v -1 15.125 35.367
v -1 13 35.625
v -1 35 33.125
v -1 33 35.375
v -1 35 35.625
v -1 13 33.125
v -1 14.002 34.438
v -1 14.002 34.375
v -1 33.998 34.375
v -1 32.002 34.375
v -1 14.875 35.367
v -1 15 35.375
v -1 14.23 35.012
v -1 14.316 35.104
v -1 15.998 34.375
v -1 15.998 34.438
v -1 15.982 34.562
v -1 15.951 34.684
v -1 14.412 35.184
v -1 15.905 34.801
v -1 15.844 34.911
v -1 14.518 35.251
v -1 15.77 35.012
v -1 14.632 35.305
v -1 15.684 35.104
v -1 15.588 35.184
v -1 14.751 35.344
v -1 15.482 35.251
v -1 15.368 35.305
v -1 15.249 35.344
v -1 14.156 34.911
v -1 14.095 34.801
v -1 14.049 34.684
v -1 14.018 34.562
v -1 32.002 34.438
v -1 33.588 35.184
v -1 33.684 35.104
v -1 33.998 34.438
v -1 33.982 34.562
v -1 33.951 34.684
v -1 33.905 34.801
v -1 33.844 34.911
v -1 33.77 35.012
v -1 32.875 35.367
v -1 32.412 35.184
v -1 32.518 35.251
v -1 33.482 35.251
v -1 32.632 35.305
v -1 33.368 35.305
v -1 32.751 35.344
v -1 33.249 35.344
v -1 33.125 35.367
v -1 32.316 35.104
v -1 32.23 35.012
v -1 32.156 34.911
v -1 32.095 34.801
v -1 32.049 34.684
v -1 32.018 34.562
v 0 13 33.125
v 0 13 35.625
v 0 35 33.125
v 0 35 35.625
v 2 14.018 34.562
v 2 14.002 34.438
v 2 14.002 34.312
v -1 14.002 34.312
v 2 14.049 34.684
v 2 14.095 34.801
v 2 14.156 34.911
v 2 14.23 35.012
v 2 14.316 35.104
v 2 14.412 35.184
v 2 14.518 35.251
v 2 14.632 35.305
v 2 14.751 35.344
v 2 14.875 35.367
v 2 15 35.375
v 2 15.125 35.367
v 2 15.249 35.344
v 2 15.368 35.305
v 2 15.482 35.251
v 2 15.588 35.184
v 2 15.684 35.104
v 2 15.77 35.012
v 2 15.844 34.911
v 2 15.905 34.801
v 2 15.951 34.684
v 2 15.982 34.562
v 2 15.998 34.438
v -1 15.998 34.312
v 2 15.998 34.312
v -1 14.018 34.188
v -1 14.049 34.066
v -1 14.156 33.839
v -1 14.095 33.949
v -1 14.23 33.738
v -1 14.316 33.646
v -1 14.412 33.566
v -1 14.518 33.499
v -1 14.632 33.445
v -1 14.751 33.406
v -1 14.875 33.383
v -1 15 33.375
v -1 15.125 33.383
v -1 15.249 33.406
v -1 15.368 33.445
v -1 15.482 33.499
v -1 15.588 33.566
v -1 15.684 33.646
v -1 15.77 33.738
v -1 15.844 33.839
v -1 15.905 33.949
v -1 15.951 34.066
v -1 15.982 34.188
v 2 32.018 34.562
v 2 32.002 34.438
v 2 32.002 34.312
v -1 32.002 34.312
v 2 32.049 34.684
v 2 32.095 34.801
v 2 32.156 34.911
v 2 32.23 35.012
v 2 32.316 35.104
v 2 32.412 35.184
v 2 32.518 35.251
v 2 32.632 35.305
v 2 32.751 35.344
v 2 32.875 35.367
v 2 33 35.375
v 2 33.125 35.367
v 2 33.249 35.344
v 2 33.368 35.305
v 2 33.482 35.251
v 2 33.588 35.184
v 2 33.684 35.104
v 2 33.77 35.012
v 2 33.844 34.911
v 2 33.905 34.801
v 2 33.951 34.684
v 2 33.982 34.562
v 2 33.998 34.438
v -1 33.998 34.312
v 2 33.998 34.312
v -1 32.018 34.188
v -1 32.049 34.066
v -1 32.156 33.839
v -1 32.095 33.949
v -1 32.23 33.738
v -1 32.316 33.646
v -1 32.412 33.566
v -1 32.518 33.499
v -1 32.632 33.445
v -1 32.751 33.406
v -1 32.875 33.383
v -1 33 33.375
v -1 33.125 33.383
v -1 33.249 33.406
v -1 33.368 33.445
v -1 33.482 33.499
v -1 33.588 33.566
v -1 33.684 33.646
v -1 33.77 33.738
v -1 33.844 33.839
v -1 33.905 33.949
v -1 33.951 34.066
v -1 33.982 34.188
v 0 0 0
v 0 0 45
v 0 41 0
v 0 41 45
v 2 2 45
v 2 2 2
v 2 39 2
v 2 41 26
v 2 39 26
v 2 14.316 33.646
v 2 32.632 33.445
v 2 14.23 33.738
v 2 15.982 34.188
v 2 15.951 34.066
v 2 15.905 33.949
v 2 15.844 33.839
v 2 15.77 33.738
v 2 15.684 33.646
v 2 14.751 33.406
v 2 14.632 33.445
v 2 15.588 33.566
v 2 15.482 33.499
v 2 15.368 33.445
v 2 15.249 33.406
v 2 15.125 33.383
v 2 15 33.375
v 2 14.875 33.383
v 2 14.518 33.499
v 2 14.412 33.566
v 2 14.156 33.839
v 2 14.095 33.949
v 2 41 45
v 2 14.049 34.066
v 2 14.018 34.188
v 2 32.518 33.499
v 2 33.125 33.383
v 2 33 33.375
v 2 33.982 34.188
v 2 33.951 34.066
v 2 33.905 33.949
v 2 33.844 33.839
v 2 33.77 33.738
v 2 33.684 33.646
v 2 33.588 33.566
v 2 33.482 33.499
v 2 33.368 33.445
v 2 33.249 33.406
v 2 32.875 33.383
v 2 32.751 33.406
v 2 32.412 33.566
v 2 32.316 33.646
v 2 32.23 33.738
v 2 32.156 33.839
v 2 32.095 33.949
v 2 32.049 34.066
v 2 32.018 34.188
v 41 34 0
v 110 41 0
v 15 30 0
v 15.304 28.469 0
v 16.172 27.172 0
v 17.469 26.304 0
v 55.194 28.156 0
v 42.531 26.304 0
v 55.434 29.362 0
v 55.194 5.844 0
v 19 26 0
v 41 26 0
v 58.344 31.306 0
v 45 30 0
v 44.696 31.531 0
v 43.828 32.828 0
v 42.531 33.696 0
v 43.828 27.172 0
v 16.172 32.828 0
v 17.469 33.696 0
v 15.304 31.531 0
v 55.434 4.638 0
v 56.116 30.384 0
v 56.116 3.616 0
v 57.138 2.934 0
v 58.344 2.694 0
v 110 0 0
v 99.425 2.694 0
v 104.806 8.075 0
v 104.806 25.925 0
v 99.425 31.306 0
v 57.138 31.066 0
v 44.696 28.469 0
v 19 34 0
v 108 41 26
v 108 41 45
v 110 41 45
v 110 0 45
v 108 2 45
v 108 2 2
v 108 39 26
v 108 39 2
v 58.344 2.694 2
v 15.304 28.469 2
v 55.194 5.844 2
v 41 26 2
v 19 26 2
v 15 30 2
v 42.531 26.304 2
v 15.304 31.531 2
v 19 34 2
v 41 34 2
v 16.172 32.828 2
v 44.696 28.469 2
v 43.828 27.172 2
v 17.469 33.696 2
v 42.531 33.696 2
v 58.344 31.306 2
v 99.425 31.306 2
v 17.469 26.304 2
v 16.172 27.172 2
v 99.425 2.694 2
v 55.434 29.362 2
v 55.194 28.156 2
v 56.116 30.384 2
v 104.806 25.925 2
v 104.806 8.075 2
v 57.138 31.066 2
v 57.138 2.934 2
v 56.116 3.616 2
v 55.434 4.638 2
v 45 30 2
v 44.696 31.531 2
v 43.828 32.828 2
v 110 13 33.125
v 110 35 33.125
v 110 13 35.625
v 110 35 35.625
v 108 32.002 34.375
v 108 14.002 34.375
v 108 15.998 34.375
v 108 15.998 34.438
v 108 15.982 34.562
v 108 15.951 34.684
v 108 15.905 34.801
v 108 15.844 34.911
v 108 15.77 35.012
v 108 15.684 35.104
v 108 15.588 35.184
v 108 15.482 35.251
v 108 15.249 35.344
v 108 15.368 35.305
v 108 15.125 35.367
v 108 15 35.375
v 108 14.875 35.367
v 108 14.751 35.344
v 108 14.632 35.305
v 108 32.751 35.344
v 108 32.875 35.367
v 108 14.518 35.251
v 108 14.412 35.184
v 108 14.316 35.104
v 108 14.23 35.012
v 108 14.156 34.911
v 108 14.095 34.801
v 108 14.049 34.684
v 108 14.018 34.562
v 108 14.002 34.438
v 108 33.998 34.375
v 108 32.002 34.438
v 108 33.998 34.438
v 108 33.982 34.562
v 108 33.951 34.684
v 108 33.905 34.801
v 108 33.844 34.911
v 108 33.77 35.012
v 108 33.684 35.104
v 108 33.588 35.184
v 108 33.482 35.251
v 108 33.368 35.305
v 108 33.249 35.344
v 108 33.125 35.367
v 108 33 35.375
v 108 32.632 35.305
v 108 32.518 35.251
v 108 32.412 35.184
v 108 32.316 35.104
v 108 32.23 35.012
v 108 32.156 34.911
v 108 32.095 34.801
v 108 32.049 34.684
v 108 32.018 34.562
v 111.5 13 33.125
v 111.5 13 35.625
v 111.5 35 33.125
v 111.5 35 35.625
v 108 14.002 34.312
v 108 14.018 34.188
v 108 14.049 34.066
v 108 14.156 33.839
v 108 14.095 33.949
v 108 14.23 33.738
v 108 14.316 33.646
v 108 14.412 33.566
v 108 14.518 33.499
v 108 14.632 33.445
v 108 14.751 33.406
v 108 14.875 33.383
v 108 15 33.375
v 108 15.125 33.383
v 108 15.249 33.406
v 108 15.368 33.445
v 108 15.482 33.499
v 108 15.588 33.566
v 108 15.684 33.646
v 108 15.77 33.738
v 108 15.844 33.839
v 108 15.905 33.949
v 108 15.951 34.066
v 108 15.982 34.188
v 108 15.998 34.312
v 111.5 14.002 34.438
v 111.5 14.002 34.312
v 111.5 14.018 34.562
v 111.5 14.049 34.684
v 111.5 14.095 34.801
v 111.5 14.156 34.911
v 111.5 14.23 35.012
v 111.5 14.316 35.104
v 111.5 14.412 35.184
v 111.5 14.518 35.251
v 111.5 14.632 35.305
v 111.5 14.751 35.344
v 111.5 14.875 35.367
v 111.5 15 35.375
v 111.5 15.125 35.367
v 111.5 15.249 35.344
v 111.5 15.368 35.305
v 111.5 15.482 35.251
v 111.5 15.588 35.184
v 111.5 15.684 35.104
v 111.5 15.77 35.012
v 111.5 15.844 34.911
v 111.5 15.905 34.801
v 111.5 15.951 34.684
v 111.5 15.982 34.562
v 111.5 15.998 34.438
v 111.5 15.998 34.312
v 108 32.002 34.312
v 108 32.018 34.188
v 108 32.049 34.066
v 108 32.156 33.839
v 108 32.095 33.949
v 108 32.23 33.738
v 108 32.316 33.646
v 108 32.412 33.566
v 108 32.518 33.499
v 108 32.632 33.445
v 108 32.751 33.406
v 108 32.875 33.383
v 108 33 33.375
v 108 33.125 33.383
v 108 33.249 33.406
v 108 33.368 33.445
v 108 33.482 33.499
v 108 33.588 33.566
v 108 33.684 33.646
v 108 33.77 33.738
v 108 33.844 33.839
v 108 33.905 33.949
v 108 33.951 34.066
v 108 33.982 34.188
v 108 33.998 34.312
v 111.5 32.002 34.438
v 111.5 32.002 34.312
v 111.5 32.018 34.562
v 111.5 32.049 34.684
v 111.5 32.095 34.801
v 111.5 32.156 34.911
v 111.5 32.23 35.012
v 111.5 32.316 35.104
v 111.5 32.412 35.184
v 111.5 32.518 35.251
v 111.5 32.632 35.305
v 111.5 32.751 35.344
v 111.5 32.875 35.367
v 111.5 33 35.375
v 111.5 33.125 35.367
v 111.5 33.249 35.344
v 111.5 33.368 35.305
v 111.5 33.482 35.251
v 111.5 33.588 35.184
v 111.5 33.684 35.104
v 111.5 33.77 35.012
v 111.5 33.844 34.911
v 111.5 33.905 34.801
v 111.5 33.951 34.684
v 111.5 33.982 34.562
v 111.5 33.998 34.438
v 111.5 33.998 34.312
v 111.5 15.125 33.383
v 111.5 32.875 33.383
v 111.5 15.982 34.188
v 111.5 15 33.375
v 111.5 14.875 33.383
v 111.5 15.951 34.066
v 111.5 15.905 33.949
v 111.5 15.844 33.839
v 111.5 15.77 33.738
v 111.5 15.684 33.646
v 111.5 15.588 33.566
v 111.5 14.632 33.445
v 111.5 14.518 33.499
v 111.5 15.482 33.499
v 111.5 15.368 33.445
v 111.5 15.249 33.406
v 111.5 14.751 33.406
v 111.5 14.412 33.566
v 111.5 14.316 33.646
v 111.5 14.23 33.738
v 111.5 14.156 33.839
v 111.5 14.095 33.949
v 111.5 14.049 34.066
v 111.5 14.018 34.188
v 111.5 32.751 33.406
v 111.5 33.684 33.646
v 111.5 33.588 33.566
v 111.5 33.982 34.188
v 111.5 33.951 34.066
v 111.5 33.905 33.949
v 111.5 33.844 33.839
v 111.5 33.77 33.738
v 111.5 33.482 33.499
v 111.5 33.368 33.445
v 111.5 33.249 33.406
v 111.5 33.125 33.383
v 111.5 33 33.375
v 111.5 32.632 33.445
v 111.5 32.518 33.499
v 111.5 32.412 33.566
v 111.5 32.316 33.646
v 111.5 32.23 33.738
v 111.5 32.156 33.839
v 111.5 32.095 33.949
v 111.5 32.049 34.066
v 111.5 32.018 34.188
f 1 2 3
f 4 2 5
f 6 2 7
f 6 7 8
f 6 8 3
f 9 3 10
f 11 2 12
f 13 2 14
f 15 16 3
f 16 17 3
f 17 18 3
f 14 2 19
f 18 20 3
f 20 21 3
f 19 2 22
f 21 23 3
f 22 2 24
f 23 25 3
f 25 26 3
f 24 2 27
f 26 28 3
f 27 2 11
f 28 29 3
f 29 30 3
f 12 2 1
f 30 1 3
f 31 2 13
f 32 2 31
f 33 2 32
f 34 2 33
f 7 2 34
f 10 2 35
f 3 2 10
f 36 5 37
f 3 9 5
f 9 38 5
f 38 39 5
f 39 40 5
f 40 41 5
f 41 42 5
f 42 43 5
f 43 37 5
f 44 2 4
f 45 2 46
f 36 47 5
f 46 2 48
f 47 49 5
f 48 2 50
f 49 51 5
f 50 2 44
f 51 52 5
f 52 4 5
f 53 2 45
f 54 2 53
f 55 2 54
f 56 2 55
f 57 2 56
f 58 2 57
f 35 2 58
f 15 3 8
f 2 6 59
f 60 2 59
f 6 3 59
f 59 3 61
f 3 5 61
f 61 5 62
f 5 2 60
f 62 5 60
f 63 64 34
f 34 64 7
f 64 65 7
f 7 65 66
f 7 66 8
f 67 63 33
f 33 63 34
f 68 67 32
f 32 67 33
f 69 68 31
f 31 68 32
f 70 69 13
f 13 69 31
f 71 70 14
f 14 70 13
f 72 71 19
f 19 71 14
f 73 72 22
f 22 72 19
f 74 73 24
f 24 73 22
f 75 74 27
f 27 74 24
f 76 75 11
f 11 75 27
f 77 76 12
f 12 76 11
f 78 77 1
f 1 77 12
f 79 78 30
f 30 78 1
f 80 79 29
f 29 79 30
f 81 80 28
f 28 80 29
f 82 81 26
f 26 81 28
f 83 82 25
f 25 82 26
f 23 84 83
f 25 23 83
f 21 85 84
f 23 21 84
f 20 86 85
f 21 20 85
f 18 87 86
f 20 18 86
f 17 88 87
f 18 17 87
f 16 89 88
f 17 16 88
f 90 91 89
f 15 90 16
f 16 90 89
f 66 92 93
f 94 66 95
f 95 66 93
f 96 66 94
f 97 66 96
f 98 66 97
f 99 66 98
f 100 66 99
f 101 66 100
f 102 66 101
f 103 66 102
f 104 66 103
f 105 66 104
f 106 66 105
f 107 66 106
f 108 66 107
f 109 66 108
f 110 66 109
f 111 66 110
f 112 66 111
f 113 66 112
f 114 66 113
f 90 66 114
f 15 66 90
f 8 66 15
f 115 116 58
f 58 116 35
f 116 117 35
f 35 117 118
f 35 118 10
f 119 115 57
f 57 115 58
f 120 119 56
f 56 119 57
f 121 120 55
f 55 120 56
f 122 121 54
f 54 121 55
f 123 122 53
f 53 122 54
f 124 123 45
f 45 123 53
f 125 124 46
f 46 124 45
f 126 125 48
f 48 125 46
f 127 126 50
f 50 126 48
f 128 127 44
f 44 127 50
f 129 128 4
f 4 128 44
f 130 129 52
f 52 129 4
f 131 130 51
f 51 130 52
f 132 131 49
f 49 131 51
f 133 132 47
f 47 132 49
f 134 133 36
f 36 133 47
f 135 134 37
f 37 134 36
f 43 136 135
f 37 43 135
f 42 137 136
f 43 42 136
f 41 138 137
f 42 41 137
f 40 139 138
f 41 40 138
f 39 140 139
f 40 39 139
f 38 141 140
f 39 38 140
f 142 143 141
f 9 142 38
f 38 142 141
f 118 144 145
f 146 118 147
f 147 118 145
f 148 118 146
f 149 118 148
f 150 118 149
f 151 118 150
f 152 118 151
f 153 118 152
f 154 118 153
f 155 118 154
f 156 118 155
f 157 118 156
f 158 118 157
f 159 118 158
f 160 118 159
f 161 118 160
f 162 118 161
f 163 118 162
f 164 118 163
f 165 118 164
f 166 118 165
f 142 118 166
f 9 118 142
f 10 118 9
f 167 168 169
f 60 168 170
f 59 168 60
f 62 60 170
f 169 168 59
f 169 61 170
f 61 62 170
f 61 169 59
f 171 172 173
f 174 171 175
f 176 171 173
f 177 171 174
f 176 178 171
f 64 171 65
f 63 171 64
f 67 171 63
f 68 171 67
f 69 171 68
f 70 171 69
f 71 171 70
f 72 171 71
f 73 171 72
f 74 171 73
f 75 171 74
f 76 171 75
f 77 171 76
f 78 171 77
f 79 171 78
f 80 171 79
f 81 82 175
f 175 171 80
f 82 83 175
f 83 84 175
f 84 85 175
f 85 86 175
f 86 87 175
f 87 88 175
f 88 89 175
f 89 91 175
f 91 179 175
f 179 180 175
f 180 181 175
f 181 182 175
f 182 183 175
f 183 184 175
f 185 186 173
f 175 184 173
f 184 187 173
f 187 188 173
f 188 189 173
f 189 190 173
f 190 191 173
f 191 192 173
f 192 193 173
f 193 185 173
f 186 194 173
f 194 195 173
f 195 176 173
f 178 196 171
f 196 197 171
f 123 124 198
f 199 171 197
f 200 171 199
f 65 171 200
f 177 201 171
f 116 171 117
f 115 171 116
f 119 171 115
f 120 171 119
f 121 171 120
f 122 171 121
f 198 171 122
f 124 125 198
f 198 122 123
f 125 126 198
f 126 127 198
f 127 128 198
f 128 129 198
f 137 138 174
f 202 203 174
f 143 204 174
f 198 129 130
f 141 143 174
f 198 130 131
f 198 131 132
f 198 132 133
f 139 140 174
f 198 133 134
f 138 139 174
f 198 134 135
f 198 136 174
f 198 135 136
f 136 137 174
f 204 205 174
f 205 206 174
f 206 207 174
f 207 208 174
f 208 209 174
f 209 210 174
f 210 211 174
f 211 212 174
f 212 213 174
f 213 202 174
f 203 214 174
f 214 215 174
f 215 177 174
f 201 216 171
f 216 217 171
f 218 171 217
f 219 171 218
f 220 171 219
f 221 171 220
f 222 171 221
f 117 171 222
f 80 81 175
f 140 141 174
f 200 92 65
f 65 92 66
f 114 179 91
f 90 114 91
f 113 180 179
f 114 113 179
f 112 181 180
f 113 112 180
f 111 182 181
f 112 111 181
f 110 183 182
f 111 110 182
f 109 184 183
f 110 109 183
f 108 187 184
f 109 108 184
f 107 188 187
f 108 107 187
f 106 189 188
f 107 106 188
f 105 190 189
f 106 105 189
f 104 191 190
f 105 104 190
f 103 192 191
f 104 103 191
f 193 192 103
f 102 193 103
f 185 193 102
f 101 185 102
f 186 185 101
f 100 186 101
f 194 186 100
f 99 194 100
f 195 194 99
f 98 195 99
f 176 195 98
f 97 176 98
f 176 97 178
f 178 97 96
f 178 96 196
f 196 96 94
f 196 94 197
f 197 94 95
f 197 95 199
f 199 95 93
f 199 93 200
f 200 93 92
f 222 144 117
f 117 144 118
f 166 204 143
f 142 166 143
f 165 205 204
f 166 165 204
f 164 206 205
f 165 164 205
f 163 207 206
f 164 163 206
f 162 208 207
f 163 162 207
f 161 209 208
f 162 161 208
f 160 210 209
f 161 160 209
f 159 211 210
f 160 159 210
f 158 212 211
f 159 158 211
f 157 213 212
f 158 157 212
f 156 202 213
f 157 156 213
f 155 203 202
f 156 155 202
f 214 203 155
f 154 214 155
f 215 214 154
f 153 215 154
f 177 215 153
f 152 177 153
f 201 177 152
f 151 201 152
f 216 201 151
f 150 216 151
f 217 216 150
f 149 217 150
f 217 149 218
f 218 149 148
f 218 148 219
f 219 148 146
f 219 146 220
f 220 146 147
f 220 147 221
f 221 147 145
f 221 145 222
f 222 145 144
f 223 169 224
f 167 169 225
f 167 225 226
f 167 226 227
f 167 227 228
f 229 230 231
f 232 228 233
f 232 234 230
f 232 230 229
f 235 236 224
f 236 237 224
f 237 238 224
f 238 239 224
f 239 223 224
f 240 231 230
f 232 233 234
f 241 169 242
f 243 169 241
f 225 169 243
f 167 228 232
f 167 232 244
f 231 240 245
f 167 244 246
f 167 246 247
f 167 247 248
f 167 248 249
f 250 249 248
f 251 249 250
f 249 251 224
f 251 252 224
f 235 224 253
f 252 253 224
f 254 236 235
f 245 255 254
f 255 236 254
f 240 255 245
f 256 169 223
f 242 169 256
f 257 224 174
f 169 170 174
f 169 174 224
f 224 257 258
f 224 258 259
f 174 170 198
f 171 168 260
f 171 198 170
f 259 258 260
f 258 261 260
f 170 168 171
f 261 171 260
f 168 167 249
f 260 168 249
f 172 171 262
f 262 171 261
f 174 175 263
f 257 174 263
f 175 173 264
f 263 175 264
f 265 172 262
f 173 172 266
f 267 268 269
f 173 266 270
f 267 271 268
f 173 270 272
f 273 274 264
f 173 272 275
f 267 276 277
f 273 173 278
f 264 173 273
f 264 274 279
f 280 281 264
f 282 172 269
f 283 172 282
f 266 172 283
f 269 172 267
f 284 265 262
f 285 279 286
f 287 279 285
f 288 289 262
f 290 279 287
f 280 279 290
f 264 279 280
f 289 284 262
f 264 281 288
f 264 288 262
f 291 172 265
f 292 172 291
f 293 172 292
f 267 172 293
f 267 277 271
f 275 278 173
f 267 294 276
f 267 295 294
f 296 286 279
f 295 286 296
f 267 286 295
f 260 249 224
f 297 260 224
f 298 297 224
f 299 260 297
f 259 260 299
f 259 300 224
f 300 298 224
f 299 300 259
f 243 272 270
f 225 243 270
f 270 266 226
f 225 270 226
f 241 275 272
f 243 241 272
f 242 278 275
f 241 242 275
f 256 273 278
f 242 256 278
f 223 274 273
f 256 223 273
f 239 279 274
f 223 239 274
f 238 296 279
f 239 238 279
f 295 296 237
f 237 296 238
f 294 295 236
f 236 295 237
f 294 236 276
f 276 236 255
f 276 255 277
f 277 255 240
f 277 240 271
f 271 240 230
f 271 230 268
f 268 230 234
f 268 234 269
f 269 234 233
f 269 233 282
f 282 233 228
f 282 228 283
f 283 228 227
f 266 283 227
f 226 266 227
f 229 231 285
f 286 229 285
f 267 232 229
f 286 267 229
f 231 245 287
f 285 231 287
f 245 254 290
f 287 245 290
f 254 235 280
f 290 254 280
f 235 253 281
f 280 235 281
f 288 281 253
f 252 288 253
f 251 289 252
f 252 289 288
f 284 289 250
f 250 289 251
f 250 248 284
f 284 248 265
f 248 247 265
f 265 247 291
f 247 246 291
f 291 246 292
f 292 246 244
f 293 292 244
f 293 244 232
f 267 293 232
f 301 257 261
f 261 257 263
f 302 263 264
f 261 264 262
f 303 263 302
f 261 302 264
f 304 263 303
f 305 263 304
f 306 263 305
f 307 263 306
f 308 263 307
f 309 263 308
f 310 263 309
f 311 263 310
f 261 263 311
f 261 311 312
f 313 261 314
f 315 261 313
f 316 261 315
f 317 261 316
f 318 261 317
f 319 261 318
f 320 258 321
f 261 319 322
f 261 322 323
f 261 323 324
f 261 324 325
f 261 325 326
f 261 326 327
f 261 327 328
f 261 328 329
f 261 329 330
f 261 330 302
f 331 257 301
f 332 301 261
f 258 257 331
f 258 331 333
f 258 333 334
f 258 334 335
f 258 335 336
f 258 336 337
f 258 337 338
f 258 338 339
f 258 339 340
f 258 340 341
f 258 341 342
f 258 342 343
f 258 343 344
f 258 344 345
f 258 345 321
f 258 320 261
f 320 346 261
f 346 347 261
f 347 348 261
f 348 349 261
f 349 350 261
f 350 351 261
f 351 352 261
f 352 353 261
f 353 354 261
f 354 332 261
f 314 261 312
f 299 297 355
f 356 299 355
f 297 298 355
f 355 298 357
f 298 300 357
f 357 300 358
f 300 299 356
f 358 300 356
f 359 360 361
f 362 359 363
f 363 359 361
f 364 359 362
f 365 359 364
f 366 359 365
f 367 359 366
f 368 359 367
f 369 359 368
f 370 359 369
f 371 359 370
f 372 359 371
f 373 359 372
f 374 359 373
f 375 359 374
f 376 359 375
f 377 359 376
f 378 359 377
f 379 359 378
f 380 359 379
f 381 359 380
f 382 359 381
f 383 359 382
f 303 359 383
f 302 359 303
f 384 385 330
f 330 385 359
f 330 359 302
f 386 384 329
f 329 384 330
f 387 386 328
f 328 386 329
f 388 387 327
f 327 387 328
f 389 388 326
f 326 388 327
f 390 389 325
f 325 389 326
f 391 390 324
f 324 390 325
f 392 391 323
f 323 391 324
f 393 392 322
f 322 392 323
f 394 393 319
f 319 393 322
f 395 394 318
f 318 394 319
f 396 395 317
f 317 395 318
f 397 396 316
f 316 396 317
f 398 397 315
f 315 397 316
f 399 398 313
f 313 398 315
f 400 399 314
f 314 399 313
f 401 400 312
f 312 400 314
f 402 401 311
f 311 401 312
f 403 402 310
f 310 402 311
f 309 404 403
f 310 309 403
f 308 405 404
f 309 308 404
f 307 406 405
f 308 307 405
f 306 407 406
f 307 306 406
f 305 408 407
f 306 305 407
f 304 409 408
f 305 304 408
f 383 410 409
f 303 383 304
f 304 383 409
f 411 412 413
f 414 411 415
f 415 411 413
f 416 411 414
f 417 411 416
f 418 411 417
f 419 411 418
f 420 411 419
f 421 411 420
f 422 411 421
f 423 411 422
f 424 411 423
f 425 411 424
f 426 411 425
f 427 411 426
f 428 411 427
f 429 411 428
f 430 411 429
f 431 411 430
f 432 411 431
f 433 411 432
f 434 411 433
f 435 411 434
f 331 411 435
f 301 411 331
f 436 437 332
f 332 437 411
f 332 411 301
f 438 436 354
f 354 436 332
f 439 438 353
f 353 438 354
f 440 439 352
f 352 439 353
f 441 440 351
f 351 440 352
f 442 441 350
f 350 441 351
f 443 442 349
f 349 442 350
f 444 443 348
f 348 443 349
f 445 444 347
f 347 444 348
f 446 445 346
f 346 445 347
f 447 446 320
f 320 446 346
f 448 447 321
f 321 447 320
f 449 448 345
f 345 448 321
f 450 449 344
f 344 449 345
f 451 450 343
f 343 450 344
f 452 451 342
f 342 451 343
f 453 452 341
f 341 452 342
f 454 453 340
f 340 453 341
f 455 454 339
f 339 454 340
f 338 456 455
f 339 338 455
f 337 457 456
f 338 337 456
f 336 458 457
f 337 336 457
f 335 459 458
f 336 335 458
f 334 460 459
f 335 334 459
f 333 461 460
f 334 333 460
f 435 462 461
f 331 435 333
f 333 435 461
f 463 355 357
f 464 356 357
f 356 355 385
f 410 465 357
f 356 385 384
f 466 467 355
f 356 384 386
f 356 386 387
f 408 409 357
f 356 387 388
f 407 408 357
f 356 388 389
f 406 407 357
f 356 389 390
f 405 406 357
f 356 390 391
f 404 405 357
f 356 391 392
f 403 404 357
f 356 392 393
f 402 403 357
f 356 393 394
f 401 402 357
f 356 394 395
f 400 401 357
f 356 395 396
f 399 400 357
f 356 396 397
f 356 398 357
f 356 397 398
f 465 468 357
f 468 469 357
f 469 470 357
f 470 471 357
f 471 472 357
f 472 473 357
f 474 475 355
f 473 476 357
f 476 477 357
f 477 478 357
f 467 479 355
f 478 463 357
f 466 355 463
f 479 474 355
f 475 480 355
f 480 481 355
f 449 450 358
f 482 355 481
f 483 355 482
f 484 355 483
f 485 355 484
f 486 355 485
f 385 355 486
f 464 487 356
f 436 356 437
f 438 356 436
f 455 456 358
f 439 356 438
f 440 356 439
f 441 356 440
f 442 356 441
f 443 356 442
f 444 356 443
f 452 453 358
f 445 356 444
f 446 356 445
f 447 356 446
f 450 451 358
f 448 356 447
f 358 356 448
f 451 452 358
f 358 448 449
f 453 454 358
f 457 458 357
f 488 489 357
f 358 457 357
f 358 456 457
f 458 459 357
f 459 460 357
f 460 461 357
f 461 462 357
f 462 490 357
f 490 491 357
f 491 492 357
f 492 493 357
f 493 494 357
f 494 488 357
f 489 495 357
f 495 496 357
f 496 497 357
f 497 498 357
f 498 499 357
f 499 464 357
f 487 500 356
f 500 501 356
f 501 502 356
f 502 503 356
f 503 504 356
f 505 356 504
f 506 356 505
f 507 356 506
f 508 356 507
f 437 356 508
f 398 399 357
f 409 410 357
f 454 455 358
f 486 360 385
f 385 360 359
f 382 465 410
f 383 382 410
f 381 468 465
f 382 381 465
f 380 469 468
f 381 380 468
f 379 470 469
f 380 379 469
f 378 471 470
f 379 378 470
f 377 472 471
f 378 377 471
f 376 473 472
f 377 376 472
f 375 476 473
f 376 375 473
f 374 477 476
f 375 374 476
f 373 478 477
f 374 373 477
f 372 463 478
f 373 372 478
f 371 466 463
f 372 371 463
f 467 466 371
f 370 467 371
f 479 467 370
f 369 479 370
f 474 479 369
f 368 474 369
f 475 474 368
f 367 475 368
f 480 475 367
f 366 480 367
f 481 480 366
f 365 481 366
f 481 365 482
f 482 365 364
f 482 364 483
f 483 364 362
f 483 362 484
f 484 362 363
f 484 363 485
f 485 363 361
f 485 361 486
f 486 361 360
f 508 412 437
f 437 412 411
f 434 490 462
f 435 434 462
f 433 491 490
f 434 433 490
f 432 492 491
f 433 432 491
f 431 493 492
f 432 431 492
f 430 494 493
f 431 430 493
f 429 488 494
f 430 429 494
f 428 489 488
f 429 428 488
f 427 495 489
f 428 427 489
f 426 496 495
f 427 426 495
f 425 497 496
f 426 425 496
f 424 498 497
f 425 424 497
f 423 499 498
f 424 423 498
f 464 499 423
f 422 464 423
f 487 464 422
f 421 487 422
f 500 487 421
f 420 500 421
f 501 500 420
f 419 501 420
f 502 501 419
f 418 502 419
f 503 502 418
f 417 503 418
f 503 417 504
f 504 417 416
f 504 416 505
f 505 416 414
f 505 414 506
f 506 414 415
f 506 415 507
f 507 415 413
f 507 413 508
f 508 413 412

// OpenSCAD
// file: declib.scad
//obround (20,8,5);
//radplate (50,40,2,5);
//obround_rod (20,3);	



module obround (rlen,rwid,hgt){ 
	hull(){
		translate ([(rlen-rwid)/2,0,0]) cylinder(r=rwid/2,h=hgt,$fn=16);
		translate ([(rlen-rwid)/-2,0,0]) cylinder(r=rwid/2,h=hgt,$fn=16);
	}
}

		
module radplate (xwid=5,ywid=5,rad=1,thk=1){
	hull(){
		translate ([xwid/2-rad,ywid/2-rad,0]) cylinder (r=rad,h=thk,$fn=16);
		translate ([xwid/2-rad,ywid/-2+rad,0]) cylinder (r=rad,h=thk,$fn=16);
		translate ([xwid/-2+rad,ywid/-2+rad,0]) cylinder (r=rad,h=thk,$fn=16);
		translate ([xwid/-2+rad,ywid/2-rad,0]) cylinder (r=rad,h=thk,$fn=16);
	}
}
module obround_rod (rlen,rwid){ //could be a radius/2 error
	hull(){
		translate ([(rlen-rwid)/2,0,0]) sphere(r=rwid/2,$fn=16);
		translate ([(rlen-rwid)/-2,0,0]) sphere(r=rwid/2,$fn=16);
	}
}

module tube (od,wall,hgt){
	linear_extrude (height =hgt ,center=false)
	difference () {
		circle (r=od/2);
		circle (r=od/2-wall);
	}
}
// main file
include <declib.scad>;

/*************************************************************************************************
Power Supply Terminal Cover for the power supply commonly used with the Bukobot and other 3d printers
Author: Mike Thompson (thingiverse: mike_linus)
Date Last Modified: 11/03/2013 4:19pm
Description: simply change the cutout parameters to suit. Note: do not change length, height, depth and thickness parameters for the base unless you want to change the core dimensions.
**************************************************************************************************/

//***************************************************************
//don't change these base parameters unless you want to change the core dimensions.
//***************************************************************
hole_resolution=50;
base_length=108;
base_height=41;
base_depth=45;//dec
bottom_height = base_depth-19;
base_thickness=2;
slot_depth = 9;// distance from well back to the closer slot edge
slot_len = 22;// slot length not counting radius
slot_width = 2.75; // slot_width
slot_height = 6; //distance from folded over inner ps bottom (usually a folded over lip) to nearest slot end
retainer_width = 2.5; //width of the retainer (a bit less than the slot)

slot_cen = base_depth-slot_width/2-slot_depth-0.25;
$fn=hole_resolution;

//***************************************************************
//change these cutout parameters to suit you own switch size etc.
//***************************************************************
switch_cutout_length=27;
switch_cutout_width=12;

led_cutout_radius=4;
grommet_cutout_radius=6;

power_plug_cutout_length=28;
power_plug_cutout_width=20;

screw_hole_cutout_radius=1;





module base(){
cube([base_length,base_height,base_thickness]);
cube([base_thickness,base_height,base_depth]);
cube([base_length,base_thickness,base_depth]);
 if(bottom_height>0) translate ([0,base_height-base_thickness,0]) cube ([base_length,base_thickness,bottom_height]);//dec
translate([base_length,0,0])cube([base_thickness,base_height,base_depth]);
translate([-1,base_height-slot_len-slot_height,slot_cen-retainer_width/2])cube([1.5,slot_len,retainer_width]);//slot retainer //dec
translate([base_length+base_thickness,base_height-slot_len-slot_height,slot_cen-retainer_width/2])cube([1.5,slot_len,retainer_width]);//slot retainer  //dec
}


//translate ([base_length-28,17,-18]) rotate ([0,180,-90]) uxcell_power_entry(); //use to position, use same trans-rot below
//translate ([30,30,-5]) rotate ([0,0,0])  obround (30,8,10);

difference(){
base();
//translate([72,0,3])cube([switch_cutout_length,base_thickness,switch_cutout_width]);  //switch cutout //dec
//translate([8,3,9])rotate([90,0,0])cylinder(r=led_cutout_radius,h=5);  //led cutout//dec
//translate([60,20,0])cylinder(r=grommet_cutout_radius,h=5);  //12v lead cutout//dec
//translate([14,3,0])cube([power_plug_cutout_length,power_plug_cutout_width,base_thickness]);  //240v plug cutout//dec
//translate([7.5,12.75,0])cylinder(r=screw_hole_cutout_radius,h=5);  //240v plug screw hole//dec
//translate([48,12.75,0])cylinder(r=screw_hole_cutout_radius,h=5);  //240v plug screw hole//dec

translate ([base_length-28,17,-18]) rotate ([0,180,-90]) scale ([1.05,1.05,1]) uxcell_power_entry(); //dec
translate ([30,30,-5]) rotate ([0,0,0])  obround (30,8,10); //slot for wires
translate([base_length,base_height-slot_height-2,slot_cen])rotate([0,90,0])cylinder(r=screw_hole_cutout_radius,h=5);  //retainer screw hole //dec
translate([base_length,base_height-slot_len-slot_height+2,slot_cen])rotate([0,90,0])cylinder(r=screw_hole_cutout_radius,h=5);  //retainer screw hole //dec
translate([-1,base_height-slot_height-2,slot_cen])rotate([0,90,0])cylinder(r=screw_hole_cutout_radius,h=5);  //retainer screw hole //dec
translate([-1,base_height-slot_len-slot_height+2,slot_cen])rotate([0,90,0])cylinder(r=screw_hole_cutout_radius,h=5);  //retainer screw hole//d\ec
}







module uxcell_power_entry () {


	difference () {
		union () {
			radplate (xwid=30,ywid=50,thk=3,rad=3); //faceplate 
			translate([0,0,-21.5]) difference () {
				radplate (xwid=27.25,ywid=47.25,rad=3,thk=21.5); //simplified body, thickness includes connection tabs
				translate ([-sqrt(2)*4-17/2,47.25/2,0]) rotate ([0,0,45]) translate ([-4,-4,0]) cube ([8,8,21.5]);
				translate ([sqrt(2)*4+17/2,47.25/2,0]) rotate ([0,0,45]) translate ([-4,-4,0]) cube ([8,8,21.5]);		
			}
			translate ([0,-16,0]) rotate ([0,-15,0])cube ([16.4,10.4,8],center=true); //apx to the switch
				
		}			

		scale ([.9,.9,1]) translate([0,0,-17.5]) difference () {
			translate ([0,15,0]) radplate (xwid=27.25,ywid=17.25,rad=3,thk=21.5); //changed the length of the body, shrunk and translated it depth of well in question
			translate ([-sqrt(2)*4-17/2,47.25/2,0]) rotate ([0,0,45]) translate ([-4,-4,0]) cube ([8,8,21.5]);
			translate ([sqrt(2)*4+17/2,47.25/2,0]) rotate ([0,0,45]) translate ([-4,-4,0]) cube ([8,8,21.5]);		
		}	
	}	
}
